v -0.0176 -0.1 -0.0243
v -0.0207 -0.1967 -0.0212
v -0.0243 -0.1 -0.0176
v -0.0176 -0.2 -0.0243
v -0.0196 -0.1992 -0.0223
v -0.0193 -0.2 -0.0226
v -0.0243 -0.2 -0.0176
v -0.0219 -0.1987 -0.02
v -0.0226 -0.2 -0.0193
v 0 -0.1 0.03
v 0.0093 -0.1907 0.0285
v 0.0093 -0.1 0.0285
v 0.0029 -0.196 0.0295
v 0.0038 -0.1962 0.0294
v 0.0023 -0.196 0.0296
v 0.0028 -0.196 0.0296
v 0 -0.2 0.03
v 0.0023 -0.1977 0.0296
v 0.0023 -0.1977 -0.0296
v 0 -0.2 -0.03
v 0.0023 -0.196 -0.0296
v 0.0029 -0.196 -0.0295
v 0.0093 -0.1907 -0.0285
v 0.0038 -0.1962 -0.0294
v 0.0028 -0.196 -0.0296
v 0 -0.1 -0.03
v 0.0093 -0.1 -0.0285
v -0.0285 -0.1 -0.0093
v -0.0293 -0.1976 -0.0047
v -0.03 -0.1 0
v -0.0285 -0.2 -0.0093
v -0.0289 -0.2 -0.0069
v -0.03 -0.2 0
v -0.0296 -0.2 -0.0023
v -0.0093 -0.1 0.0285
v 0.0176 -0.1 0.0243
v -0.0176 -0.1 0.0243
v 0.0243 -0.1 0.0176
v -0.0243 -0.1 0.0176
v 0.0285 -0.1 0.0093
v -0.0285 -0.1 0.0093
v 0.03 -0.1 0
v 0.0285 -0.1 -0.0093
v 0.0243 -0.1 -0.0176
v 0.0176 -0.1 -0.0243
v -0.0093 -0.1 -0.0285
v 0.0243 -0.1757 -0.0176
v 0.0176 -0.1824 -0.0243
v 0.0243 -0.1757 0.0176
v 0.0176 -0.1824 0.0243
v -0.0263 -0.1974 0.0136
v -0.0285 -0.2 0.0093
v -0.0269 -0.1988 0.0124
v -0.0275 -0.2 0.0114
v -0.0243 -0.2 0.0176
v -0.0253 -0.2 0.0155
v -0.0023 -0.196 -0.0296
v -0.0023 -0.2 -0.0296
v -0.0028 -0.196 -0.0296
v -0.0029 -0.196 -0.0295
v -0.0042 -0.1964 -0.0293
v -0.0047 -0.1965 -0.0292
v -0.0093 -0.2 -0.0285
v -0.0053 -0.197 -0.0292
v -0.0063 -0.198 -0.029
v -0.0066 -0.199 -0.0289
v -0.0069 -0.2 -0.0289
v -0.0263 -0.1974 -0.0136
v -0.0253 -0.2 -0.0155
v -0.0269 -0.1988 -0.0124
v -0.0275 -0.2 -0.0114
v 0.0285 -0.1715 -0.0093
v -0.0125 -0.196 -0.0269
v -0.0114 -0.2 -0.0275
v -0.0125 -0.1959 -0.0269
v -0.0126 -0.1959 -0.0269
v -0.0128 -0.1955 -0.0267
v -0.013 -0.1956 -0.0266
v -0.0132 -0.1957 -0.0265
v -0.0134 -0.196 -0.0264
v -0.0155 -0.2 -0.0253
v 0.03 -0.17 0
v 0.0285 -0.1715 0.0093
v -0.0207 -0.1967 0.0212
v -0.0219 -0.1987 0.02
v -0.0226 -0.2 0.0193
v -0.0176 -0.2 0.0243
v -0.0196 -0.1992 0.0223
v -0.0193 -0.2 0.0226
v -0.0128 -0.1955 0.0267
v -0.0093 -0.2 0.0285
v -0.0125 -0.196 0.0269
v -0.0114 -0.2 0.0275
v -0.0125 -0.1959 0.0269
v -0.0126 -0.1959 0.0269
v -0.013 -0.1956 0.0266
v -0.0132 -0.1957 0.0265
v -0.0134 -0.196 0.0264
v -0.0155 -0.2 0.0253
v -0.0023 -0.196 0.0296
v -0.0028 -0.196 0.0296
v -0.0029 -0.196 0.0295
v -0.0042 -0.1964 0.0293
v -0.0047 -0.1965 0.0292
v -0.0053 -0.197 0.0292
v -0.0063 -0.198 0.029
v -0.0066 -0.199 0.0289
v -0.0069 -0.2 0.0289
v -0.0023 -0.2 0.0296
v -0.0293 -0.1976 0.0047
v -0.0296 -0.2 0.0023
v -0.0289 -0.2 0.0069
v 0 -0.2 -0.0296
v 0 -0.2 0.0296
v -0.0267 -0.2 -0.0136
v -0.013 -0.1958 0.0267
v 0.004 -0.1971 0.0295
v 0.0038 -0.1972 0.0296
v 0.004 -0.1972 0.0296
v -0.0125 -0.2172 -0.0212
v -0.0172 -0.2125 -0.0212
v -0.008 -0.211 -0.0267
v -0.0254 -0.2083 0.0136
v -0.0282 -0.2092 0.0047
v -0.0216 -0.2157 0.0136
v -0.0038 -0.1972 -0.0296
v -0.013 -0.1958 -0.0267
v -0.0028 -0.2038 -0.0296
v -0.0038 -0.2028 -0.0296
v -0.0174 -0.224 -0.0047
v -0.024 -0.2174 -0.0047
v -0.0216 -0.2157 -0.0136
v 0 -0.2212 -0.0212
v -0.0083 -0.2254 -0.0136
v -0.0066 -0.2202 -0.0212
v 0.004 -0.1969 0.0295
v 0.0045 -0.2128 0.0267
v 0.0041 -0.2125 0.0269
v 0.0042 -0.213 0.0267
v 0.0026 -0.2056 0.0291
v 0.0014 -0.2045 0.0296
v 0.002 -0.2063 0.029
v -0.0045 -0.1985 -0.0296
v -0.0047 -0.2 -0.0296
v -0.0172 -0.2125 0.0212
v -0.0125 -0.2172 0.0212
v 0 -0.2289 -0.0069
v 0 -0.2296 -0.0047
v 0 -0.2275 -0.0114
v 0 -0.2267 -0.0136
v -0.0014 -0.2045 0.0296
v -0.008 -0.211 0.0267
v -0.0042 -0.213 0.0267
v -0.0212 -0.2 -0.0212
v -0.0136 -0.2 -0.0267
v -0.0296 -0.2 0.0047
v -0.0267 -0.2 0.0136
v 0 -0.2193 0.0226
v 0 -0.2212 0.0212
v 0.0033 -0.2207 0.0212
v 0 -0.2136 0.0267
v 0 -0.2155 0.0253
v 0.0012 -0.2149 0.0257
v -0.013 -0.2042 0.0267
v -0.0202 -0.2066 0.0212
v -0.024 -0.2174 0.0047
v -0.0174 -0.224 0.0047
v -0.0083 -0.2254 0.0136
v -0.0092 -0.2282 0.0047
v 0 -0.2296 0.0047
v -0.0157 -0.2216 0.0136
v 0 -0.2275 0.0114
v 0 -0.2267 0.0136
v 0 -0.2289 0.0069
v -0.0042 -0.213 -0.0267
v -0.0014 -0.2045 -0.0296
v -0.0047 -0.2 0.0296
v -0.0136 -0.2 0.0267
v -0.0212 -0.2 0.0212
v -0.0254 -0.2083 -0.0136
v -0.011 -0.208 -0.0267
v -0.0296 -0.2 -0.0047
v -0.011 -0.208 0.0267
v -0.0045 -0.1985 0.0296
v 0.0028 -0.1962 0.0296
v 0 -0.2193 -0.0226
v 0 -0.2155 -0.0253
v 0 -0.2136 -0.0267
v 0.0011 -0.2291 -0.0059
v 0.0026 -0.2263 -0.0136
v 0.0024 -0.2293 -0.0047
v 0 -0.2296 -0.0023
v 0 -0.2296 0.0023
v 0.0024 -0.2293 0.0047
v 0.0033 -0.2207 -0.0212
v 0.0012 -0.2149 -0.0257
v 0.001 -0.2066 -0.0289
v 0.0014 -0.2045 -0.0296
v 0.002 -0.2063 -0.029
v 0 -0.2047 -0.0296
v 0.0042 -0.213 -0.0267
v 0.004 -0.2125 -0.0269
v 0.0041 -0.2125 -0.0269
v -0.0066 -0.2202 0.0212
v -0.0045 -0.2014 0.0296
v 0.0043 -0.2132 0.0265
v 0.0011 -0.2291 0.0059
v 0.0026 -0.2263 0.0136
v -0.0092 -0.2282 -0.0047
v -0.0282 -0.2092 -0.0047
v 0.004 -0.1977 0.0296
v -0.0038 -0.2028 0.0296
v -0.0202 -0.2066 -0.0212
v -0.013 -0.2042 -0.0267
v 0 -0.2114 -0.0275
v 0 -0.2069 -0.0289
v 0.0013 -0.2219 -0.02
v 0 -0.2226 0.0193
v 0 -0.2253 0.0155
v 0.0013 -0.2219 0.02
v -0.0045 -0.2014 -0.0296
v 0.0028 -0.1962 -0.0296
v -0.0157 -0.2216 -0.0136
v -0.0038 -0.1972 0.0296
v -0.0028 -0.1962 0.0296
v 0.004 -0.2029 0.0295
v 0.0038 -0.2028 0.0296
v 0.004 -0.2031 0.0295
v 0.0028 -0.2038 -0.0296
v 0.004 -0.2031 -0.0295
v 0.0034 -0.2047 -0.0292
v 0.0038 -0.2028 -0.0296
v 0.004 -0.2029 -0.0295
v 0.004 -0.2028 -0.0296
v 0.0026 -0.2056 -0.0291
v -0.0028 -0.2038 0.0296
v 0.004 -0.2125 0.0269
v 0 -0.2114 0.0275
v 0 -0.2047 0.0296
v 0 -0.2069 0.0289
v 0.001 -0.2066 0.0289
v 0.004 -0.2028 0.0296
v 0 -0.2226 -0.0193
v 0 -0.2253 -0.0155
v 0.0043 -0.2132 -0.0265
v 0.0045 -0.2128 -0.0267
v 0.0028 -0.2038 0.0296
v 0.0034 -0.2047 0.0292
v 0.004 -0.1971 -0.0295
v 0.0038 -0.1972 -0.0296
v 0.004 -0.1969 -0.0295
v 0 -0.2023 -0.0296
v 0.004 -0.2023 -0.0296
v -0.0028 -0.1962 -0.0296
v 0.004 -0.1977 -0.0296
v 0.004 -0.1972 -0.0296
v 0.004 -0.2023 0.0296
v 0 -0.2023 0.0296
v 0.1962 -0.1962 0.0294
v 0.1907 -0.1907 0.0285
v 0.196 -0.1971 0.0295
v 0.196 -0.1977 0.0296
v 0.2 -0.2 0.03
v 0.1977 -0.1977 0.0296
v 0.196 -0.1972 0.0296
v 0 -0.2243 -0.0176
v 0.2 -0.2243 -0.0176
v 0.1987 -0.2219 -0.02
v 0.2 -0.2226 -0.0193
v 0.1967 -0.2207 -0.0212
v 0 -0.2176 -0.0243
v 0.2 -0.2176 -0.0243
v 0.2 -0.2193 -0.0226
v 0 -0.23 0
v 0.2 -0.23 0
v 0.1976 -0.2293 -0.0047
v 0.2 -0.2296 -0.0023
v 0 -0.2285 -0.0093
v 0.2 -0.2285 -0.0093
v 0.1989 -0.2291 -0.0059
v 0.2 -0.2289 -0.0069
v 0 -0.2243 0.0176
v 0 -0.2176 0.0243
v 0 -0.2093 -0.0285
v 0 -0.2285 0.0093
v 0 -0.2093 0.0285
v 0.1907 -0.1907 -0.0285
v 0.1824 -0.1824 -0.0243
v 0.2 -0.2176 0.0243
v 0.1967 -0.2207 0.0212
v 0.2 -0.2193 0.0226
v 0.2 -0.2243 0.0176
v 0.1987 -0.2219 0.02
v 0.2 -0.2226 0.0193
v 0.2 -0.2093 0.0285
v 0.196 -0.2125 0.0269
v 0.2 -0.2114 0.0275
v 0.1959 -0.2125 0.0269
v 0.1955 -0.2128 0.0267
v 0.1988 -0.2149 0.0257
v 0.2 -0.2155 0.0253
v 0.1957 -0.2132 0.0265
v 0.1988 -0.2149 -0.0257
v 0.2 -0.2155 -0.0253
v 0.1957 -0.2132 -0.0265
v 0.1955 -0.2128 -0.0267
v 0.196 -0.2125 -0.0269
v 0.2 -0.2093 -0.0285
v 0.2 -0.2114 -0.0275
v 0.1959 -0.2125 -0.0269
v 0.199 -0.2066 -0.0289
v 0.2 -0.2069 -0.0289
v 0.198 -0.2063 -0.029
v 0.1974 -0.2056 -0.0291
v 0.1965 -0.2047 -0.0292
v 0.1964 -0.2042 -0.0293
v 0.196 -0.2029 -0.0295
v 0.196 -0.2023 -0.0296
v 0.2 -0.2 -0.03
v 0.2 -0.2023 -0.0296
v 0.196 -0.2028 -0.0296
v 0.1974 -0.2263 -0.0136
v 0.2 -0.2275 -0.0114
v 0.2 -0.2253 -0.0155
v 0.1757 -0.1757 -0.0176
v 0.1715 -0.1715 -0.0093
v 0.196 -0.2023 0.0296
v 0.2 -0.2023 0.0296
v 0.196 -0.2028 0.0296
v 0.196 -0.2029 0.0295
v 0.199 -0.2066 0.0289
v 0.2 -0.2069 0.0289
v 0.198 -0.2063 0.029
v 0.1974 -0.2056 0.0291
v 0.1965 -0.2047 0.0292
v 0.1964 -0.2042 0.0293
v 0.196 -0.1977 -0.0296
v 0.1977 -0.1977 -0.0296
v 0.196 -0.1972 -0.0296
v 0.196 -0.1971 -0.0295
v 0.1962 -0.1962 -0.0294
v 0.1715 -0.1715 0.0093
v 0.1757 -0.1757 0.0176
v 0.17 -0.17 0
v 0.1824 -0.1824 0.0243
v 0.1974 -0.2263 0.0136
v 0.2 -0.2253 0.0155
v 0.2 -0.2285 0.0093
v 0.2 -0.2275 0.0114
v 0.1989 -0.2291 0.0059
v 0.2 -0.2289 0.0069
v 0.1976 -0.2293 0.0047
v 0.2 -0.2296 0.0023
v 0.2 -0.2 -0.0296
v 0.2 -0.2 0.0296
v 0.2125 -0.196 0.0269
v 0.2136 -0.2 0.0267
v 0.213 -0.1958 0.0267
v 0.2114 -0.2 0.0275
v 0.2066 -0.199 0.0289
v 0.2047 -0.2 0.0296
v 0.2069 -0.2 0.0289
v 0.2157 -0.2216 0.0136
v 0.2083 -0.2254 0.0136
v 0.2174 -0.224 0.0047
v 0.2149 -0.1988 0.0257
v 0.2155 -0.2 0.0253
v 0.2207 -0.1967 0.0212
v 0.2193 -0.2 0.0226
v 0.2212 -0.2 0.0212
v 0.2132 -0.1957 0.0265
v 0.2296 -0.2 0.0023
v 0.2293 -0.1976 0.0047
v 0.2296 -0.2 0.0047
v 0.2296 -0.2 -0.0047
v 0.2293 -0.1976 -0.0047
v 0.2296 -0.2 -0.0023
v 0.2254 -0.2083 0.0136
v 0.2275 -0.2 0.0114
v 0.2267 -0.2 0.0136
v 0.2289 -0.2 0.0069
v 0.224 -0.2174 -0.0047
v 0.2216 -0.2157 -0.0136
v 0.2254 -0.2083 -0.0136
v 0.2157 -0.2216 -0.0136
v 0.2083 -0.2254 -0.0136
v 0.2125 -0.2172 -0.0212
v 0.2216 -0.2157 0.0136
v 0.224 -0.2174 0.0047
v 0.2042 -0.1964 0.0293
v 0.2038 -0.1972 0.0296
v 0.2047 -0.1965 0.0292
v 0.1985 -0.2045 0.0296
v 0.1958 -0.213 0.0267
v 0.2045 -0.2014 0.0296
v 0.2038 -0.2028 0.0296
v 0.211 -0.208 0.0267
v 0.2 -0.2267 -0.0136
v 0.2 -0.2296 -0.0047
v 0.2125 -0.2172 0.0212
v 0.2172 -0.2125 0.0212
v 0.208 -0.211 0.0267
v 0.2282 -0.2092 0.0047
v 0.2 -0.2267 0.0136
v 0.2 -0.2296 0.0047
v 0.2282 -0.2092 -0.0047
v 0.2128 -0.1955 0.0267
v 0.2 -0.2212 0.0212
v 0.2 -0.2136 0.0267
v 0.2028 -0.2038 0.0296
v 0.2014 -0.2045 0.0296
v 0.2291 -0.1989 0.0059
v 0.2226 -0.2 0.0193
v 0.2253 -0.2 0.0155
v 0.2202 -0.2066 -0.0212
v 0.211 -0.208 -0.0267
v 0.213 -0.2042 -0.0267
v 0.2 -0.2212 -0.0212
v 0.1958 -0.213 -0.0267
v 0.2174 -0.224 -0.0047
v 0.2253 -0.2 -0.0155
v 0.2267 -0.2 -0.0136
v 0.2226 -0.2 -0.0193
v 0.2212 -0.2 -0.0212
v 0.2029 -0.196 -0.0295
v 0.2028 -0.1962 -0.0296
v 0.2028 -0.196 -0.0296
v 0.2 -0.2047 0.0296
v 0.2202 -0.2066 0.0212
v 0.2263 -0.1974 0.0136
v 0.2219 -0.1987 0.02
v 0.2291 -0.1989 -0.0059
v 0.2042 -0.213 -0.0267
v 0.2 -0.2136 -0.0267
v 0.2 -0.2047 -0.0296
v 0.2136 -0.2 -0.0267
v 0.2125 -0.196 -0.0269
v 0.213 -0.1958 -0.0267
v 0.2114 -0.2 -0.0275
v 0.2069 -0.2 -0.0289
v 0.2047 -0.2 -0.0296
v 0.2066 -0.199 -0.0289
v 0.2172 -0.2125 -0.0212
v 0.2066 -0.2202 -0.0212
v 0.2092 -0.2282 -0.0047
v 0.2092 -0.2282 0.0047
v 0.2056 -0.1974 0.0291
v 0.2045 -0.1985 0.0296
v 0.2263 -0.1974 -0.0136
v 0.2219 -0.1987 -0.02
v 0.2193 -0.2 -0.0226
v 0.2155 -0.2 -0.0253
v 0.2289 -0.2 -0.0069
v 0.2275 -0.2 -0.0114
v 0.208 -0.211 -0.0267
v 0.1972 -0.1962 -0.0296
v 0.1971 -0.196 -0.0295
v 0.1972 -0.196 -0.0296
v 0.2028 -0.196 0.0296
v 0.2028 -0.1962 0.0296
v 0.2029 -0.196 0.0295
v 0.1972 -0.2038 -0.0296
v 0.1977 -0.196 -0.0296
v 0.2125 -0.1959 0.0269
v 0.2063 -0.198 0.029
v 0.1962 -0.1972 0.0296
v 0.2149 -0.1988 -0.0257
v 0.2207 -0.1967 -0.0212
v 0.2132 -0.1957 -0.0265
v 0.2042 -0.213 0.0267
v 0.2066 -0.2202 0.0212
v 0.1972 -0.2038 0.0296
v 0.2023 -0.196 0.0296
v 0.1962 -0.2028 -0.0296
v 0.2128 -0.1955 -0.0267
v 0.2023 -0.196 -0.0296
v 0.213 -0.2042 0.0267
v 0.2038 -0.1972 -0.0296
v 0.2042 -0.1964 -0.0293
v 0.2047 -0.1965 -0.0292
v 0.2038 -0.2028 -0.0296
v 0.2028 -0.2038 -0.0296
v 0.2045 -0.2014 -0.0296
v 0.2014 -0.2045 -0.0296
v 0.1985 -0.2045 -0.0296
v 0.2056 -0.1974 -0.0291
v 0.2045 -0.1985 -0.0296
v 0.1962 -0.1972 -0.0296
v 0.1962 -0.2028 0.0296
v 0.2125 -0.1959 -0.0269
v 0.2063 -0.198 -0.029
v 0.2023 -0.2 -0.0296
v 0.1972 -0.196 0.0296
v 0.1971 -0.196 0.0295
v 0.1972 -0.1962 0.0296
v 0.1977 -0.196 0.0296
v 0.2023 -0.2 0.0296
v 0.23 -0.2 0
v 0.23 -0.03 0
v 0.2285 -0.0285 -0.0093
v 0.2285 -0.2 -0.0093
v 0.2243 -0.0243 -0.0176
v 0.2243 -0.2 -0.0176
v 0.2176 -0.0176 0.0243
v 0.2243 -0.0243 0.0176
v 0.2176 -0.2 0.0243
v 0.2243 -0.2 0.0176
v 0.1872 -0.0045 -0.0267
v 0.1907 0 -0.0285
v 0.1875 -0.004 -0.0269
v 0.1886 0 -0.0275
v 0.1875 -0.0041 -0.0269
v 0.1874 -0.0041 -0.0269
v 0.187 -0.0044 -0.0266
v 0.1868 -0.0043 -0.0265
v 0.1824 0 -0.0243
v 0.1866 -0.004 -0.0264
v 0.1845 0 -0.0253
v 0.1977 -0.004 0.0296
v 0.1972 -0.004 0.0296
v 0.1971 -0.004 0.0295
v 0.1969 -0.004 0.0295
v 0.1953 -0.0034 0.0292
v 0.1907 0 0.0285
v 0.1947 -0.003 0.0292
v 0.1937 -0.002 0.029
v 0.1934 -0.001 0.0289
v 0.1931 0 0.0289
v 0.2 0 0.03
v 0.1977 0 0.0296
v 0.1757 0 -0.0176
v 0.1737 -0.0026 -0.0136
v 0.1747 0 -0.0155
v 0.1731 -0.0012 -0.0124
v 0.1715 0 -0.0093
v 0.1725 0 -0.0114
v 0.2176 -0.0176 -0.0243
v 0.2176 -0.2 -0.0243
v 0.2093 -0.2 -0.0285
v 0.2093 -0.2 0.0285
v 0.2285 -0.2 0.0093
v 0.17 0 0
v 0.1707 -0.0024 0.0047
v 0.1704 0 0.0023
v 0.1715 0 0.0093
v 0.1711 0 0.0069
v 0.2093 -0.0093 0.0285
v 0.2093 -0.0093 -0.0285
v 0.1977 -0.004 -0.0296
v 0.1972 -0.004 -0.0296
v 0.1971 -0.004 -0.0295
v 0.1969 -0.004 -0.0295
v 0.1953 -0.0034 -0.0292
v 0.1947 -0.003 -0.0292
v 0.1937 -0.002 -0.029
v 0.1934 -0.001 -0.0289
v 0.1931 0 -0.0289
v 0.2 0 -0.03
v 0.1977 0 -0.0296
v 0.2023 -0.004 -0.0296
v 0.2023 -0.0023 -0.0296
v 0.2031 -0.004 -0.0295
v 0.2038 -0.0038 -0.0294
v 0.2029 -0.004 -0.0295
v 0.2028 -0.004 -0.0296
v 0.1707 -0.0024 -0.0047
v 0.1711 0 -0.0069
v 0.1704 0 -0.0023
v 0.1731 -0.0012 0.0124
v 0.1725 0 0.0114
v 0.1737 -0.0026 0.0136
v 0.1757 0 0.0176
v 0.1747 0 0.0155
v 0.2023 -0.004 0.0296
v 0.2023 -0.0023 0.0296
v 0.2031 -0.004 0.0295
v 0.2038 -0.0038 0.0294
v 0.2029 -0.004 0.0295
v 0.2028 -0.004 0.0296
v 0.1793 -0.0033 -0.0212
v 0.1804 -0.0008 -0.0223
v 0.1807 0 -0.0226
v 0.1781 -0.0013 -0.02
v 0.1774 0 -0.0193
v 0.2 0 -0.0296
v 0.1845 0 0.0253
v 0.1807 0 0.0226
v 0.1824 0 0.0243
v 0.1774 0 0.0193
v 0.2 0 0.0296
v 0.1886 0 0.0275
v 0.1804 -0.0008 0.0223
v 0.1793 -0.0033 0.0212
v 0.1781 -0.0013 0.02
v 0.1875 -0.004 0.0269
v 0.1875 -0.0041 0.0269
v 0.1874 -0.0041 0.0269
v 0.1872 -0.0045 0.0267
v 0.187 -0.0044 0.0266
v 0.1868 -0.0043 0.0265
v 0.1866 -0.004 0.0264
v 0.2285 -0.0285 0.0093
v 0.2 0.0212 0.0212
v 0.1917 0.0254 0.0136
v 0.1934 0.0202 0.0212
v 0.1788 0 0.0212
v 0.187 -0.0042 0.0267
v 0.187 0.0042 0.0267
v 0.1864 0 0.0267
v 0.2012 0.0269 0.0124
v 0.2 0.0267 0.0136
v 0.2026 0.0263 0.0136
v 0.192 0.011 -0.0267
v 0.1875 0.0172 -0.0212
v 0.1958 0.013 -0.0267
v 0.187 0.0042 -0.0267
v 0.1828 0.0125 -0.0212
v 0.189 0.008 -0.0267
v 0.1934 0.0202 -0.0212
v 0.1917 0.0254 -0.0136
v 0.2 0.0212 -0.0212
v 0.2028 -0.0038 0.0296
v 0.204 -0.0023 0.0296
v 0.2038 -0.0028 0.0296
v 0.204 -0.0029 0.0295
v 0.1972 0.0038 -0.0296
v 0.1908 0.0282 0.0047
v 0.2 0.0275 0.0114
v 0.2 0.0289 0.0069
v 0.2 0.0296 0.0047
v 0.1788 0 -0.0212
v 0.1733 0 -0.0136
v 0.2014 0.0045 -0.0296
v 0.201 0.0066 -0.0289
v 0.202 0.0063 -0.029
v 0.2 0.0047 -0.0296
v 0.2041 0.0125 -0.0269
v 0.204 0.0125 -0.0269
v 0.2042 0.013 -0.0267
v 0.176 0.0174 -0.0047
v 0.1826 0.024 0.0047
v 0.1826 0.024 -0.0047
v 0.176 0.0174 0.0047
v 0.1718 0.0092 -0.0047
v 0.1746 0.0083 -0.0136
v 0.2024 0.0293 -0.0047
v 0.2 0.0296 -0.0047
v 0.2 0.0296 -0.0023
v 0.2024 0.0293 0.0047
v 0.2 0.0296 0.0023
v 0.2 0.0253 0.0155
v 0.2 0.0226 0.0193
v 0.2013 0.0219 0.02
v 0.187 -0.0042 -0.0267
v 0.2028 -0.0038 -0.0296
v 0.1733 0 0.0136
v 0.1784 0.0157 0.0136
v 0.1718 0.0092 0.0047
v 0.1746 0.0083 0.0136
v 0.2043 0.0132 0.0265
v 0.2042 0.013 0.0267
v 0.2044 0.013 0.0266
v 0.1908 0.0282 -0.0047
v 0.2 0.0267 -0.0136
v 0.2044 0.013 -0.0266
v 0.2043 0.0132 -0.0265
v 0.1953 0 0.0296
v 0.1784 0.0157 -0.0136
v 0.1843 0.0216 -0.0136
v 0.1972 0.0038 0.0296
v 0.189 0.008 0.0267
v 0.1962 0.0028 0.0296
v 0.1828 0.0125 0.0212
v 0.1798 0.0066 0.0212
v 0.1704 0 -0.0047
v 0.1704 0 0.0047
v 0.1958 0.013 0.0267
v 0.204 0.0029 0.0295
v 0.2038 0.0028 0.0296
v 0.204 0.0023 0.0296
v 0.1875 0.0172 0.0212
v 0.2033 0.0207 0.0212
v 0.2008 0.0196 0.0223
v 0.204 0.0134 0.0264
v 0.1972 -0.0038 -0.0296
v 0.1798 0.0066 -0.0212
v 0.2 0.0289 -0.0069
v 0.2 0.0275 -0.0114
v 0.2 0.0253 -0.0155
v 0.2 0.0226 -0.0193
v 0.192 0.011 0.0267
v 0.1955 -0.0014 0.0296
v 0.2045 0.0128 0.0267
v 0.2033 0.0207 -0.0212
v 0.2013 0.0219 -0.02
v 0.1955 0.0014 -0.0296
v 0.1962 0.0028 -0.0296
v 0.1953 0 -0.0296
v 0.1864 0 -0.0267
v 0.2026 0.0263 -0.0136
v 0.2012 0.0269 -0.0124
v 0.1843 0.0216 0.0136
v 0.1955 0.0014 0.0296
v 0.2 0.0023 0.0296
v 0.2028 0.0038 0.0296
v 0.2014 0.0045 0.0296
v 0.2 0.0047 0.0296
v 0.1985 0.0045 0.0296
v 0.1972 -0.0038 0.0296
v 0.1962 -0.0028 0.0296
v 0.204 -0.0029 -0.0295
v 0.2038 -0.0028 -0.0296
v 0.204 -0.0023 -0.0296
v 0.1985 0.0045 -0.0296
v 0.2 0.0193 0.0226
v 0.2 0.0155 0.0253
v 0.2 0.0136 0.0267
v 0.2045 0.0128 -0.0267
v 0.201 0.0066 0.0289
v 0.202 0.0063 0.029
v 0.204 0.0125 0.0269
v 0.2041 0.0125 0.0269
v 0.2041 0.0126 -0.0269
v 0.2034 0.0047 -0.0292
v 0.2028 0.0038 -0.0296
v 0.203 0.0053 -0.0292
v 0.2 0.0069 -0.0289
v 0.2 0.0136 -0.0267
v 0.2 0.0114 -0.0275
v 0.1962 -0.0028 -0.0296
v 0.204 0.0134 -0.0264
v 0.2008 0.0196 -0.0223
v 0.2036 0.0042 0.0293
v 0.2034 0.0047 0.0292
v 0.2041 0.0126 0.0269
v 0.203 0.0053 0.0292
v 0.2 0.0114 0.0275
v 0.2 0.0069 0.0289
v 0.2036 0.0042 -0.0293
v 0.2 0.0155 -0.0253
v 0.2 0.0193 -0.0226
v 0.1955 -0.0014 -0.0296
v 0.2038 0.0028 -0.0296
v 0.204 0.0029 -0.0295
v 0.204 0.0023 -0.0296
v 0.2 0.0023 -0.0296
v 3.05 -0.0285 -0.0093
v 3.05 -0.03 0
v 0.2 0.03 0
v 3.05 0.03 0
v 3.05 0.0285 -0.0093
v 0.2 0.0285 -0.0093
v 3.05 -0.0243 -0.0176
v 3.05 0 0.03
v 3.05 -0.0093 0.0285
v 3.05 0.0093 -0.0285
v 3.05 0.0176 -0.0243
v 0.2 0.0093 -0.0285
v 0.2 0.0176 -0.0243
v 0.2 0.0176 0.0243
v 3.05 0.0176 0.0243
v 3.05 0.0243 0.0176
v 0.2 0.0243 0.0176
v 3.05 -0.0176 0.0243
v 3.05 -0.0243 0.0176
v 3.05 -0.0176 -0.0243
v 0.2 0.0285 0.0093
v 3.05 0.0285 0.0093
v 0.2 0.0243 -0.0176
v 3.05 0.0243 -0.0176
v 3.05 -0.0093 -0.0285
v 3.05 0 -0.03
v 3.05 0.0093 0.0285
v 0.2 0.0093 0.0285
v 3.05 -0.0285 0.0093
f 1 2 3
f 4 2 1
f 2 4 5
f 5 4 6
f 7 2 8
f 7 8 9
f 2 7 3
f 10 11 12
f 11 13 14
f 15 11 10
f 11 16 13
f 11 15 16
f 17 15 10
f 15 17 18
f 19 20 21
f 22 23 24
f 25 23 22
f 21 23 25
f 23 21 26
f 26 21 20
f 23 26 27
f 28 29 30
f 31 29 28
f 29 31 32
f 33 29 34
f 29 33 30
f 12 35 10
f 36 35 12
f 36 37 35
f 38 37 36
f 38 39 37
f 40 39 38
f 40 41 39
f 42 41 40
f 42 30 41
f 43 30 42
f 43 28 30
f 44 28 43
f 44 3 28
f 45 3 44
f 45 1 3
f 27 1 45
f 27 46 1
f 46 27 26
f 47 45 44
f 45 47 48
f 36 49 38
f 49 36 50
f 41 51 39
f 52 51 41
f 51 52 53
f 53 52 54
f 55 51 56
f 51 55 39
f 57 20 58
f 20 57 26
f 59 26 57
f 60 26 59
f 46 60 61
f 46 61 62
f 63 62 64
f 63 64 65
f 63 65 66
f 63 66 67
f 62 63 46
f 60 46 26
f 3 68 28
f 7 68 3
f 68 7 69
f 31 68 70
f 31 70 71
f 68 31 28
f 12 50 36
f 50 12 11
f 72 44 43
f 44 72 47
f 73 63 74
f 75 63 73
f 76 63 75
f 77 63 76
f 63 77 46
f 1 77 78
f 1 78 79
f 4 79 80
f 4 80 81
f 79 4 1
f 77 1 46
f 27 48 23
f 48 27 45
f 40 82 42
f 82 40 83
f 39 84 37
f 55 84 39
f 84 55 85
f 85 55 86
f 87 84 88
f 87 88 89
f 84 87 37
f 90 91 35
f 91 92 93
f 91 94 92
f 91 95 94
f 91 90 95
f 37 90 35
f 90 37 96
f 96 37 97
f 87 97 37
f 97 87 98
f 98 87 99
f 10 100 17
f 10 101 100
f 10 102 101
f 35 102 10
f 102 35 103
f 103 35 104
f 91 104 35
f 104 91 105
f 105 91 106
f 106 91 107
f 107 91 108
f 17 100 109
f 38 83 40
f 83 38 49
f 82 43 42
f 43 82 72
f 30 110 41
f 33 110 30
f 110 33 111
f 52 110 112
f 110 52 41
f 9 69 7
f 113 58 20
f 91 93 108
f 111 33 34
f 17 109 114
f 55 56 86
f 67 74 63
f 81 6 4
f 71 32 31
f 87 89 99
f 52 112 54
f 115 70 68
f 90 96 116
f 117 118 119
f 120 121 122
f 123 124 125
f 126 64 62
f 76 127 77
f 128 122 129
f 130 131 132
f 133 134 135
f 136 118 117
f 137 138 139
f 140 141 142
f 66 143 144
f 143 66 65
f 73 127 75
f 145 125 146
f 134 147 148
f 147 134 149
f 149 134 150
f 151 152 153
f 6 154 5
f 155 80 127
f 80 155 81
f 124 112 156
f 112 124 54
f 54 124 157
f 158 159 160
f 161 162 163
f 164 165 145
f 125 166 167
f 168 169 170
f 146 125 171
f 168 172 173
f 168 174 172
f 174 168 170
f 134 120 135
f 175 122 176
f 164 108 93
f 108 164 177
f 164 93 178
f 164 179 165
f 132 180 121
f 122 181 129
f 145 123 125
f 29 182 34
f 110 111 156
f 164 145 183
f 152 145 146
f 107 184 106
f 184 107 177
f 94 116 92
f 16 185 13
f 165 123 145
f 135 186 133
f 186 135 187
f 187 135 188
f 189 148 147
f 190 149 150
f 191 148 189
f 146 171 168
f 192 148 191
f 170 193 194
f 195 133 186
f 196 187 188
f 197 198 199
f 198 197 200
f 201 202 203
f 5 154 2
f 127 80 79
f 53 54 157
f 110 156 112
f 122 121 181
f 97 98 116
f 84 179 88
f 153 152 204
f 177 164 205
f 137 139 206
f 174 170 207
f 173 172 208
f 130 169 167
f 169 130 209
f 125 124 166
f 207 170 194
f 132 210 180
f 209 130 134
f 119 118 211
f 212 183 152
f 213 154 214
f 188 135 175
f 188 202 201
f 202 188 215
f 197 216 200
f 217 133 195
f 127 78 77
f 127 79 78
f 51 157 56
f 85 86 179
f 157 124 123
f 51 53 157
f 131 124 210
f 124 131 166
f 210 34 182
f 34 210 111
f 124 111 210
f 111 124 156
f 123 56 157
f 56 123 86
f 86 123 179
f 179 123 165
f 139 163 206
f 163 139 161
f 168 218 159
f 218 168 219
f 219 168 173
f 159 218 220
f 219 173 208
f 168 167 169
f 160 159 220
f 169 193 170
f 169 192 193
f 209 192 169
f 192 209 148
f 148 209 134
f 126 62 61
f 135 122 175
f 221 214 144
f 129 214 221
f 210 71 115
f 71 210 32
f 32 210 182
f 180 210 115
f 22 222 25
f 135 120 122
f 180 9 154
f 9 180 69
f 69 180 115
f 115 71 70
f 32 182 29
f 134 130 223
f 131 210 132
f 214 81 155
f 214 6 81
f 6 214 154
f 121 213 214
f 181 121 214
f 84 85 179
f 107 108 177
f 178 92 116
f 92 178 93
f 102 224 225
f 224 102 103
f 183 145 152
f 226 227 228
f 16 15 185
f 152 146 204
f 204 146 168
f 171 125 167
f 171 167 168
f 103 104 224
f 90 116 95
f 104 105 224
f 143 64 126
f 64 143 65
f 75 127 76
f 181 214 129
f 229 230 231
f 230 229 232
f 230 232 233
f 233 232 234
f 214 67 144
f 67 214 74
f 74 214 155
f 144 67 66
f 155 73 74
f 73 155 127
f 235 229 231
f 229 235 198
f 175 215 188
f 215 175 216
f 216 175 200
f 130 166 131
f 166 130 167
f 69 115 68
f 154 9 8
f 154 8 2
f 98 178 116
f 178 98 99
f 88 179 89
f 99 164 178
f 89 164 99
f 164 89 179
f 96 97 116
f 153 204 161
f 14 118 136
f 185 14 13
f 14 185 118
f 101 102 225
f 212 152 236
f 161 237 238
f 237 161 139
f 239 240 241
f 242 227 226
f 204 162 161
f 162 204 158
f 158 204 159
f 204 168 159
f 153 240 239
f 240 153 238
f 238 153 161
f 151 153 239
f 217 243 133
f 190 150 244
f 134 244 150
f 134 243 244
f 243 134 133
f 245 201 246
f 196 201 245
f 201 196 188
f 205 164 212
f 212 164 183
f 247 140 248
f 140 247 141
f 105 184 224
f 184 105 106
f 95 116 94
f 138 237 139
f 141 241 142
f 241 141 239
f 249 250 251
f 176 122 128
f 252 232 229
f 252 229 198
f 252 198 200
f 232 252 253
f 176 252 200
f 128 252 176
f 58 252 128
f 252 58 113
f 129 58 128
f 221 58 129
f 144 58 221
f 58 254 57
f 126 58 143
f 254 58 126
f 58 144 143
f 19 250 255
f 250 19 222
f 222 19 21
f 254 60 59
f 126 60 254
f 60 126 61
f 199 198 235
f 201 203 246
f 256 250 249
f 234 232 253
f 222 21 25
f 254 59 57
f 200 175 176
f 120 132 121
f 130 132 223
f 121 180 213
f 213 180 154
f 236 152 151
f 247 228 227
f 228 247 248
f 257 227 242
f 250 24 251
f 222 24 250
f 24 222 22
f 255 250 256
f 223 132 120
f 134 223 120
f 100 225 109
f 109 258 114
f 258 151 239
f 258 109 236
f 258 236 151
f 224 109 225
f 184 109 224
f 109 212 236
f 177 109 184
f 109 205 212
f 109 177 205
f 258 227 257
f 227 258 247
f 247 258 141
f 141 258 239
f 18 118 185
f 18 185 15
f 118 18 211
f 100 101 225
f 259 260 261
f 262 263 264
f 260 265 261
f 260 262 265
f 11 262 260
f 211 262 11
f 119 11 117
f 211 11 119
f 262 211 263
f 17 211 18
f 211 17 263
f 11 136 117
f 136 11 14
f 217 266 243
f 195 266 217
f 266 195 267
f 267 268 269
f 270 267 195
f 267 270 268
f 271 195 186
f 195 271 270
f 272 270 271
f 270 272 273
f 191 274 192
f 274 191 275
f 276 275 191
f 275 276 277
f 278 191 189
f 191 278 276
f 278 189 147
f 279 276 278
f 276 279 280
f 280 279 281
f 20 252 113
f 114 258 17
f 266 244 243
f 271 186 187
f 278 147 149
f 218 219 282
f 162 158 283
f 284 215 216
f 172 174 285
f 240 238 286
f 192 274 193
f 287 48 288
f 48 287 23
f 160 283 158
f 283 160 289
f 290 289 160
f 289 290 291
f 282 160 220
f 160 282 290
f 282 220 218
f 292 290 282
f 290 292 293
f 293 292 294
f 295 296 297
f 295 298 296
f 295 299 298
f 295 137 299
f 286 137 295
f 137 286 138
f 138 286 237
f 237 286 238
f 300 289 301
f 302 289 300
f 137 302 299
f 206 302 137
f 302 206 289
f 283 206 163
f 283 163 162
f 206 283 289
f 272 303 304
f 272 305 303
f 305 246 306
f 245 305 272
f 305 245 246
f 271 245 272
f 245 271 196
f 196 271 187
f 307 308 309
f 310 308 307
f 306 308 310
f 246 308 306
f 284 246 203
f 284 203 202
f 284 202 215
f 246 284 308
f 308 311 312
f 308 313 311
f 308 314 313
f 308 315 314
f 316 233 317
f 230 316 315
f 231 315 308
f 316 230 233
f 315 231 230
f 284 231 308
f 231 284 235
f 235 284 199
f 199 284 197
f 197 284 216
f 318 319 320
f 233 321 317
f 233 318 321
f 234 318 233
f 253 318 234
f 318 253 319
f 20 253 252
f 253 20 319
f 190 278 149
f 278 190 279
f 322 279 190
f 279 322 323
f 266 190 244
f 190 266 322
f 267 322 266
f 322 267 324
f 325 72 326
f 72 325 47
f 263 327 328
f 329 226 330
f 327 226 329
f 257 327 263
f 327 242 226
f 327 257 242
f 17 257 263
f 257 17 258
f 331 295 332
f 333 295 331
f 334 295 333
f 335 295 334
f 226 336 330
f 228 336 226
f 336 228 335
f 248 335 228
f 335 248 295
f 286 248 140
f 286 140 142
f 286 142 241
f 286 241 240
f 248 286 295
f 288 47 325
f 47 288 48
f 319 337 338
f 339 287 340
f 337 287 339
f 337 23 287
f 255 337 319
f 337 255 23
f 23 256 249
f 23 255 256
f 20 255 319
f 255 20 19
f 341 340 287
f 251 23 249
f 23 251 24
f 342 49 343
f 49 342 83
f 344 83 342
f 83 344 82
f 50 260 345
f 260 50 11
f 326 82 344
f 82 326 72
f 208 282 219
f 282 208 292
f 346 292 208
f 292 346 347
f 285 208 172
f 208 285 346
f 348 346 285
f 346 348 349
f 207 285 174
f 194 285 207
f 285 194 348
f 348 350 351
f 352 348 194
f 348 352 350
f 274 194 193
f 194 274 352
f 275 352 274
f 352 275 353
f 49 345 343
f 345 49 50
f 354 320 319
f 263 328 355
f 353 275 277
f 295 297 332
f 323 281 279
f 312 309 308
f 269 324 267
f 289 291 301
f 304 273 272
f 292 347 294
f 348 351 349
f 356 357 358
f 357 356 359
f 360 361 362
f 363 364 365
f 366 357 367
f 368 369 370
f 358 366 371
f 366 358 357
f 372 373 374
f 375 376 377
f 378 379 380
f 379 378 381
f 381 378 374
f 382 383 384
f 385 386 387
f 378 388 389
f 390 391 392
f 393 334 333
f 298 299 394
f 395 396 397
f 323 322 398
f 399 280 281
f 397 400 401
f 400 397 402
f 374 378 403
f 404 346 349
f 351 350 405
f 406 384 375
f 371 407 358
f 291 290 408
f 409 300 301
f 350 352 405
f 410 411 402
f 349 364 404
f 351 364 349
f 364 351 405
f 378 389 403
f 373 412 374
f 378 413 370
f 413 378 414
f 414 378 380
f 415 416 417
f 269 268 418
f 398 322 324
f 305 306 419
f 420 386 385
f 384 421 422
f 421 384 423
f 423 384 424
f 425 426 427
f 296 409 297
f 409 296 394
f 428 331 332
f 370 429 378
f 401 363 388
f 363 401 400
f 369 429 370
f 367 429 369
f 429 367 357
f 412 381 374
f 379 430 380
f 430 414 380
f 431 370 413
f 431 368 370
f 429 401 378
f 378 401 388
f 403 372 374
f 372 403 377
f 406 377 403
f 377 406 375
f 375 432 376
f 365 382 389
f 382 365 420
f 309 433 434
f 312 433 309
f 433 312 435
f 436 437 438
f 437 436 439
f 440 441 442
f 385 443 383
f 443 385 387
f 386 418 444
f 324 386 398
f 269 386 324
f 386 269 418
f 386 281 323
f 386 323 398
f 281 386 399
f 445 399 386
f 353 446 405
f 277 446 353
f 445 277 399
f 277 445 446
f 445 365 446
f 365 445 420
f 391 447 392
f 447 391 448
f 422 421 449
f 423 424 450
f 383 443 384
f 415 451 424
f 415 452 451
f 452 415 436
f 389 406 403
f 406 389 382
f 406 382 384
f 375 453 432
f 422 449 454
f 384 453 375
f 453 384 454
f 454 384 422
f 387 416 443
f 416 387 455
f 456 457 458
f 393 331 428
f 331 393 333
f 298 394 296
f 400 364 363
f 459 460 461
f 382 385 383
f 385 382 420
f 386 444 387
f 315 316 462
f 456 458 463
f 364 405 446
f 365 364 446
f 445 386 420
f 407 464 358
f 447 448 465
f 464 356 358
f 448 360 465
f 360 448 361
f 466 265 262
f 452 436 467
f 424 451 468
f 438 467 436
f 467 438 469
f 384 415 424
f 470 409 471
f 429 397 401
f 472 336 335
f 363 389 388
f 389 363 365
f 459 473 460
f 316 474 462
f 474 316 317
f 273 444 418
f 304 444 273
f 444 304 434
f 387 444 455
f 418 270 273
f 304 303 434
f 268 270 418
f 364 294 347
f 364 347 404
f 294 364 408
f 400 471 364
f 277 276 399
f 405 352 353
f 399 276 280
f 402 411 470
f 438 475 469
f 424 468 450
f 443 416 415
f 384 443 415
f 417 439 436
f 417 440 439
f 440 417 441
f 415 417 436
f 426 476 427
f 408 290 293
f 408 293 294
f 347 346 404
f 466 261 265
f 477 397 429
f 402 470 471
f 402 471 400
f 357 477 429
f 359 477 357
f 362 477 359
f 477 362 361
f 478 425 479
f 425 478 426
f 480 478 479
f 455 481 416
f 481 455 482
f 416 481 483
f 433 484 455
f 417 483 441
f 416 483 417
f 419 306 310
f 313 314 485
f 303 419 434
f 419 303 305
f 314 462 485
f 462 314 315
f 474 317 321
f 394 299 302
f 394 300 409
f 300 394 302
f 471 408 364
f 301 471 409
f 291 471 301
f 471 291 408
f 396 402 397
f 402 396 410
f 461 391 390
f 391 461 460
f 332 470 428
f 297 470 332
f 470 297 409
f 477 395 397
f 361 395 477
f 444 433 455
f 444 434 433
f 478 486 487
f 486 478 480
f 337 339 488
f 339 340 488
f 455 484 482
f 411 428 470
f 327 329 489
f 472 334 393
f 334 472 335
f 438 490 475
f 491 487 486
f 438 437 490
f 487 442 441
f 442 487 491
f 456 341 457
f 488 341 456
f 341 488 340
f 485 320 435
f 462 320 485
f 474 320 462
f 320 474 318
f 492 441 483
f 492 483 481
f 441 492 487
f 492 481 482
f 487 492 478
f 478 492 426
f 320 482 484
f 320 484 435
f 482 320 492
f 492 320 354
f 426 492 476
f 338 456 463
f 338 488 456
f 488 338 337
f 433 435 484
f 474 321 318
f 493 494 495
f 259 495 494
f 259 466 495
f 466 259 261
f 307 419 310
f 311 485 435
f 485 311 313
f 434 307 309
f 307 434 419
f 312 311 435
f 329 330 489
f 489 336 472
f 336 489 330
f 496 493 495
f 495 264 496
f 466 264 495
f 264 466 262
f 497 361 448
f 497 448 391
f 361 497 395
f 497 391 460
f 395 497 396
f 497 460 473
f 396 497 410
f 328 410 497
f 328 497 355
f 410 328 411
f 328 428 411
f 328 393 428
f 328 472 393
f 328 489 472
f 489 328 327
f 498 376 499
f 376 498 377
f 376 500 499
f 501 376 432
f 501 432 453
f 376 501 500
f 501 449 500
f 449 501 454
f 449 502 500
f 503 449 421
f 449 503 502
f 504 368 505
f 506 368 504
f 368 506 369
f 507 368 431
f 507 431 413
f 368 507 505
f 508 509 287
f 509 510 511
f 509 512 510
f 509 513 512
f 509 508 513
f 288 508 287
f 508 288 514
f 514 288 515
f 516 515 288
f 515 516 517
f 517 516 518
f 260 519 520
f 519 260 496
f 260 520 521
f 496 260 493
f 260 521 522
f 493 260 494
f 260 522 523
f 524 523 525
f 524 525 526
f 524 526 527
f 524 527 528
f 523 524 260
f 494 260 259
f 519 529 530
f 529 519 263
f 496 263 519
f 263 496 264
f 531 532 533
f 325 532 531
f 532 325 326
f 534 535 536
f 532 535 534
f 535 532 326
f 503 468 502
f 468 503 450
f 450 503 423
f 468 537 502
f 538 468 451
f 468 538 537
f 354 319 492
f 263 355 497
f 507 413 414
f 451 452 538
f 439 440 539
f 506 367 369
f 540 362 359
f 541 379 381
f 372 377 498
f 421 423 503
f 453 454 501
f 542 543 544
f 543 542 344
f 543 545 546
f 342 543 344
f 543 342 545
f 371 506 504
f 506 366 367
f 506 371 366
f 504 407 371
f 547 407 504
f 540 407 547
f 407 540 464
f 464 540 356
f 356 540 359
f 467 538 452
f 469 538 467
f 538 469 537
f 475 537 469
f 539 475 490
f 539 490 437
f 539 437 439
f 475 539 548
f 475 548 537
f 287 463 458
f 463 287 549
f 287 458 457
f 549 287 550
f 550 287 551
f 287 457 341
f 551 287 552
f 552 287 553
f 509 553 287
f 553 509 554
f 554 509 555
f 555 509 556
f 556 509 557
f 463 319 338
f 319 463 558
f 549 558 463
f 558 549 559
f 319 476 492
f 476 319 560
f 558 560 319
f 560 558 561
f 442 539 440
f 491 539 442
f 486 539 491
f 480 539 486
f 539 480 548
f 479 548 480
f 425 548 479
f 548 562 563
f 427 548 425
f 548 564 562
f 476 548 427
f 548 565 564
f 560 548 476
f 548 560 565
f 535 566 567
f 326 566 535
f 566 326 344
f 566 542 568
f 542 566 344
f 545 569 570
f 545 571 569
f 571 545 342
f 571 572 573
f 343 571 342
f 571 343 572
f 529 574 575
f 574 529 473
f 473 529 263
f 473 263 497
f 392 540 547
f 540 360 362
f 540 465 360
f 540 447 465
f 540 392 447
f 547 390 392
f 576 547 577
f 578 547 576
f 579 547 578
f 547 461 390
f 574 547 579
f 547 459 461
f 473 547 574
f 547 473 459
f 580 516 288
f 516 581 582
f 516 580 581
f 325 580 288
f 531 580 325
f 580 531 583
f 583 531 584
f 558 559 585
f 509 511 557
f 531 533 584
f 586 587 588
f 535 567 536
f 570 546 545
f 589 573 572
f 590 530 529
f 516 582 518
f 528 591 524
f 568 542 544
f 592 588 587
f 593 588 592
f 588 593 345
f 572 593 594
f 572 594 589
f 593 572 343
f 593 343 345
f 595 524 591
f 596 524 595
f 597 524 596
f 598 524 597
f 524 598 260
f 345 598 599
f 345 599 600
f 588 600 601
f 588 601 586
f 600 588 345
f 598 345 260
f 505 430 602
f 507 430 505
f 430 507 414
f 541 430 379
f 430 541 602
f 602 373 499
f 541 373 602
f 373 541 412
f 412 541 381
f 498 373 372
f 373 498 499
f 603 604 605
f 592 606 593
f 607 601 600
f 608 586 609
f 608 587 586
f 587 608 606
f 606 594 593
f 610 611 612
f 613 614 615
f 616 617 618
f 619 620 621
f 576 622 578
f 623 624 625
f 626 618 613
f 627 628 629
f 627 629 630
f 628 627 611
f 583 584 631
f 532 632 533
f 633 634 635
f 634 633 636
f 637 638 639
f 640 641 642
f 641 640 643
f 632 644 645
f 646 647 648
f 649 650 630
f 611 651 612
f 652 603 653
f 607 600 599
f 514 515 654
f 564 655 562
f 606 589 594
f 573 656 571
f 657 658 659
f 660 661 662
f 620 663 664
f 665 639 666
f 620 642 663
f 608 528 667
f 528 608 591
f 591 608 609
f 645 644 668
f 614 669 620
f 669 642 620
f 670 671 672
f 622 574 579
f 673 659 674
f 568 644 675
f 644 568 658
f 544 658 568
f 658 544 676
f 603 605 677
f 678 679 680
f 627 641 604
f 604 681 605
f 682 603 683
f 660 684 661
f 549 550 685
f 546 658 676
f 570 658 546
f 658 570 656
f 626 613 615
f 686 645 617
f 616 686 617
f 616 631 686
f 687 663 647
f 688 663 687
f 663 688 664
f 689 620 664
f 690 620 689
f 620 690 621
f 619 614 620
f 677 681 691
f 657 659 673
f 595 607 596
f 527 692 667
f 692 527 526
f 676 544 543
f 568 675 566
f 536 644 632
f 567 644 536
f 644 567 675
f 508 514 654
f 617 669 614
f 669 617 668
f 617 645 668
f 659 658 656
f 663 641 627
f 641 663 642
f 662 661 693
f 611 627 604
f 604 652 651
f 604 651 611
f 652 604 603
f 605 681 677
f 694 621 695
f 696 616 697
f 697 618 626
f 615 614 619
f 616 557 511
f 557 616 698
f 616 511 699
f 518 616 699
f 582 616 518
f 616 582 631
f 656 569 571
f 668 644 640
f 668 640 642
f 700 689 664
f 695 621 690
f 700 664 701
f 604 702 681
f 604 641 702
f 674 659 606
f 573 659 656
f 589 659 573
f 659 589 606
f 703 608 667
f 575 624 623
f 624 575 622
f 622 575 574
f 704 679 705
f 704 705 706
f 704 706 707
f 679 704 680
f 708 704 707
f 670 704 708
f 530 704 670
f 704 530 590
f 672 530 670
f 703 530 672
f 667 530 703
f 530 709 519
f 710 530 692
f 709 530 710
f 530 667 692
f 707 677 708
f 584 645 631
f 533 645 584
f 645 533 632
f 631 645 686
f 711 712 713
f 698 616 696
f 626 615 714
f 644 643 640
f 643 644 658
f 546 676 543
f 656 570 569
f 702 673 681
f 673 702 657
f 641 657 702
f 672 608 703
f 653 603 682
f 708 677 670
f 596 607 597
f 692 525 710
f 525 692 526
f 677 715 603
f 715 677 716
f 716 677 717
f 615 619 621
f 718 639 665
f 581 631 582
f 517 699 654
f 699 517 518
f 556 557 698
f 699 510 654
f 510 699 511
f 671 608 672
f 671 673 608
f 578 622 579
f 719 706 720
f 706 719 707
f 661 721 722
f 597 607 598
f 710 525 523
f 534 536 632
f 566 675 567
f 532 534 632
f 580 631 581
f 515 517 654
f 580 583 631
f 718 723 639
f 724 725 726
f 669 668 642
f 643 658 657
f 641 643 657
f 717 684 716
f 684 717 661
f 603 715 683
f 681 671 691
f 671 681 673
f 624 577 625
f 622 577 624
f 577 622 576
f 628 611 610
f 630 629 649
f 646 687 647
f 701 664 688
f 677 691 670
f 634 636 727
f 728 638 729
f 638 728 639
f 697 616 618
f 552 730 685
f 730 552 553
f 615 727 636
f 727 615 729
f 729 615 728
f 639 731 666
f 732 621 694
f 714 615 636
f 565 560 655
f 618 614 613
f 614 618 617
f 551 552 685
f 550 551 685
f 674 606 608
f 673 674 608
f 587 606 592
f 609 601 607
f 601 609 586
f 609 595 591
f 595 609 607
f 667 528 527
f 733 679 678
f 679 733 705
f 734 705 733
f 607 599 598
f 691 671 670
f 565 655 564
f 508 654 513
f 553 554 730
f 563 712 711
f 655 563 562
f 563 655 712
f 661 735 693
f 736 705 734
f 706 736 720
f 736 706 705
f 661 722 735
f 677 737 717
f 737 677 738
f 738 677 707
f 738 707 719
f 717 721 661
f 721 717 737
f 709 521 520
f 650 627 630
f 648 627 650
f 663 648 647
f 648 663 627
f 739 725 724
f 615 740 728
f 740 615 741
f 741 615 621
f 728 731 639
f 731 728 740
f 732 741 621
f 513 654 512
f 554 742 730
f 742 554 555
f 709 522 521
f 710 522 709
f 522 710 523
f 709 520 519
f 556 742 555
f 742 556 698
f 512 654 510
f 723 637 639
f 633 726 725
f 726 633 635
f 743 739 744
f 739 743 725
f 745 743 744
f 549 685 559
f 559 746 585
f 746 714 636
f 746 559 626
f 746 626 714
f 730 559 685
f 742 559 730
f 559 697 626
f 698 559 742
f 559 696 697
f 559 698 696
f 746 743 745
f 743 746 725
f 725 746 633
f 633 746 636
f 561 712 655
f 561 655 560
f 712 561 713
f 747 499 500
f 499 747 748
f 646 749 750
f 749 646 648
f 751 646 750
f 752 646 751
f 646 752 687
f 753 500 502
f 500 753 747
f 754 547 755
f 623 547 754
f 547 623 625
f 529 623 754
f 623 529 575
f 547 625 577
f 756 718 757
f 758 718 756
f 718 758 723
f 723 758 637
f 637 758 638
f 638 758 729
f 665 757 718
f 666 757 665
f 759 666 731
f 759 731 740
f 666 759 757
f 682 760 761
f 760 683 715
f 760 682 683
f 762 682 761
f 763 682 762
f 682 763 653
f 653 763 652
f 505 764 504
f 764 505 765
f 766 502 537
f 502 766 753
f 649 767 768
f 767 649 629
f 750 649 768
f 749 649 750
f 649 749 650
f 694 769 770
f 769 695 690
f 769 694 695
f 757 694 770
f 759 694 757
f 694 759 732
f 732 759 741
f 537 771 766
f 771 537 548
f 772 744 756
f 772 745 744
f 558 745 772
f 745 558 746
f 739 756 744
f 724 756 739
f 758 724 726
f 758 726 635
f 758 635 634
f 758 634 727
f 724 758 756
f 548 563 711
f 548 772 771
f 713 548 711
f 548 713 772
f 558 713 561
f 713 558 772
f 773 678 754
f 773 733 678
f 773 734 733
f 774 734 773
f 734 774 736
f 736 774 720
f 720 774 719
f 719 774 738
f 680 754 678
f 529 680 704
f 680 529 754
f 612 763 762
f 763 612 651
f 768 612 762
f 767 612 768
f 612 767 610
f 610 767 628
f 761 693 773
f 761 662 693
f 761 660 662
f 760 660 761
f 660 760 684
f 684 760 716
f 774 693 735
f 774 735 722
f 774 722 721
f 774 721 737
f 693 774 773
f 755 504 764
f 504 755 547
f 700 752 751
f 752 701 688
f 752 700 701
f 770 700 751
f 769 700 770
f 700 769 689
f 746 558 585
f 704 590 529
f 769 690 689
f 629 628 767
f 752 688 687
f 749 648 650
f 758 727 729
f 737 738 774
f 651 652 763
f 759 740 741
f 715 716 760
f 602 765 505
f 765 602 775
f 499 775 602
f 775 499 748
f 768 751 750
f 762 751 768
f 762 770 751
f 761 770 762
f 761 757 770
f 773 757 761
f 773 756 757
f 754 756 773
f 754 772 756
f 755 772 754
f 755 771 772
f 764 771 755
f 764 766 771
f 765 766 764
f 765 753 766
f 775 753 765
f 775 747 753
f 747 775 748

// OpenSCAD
module rod(a, b, r, n_facets) {
    dir = b-a;
    h   = norm(dir);
    if (dir[0] != 0 && dir[1] != 0)
    {
        w=b-a;
        cylinder(r=r, h=h, $fn=n_facets);
    } 
   if (dir[0] != 0 || dir[1] != 0) {
        w  = dir / h;
        u0 = cross(w, [0,0,1]);
        u  = u0 / norm(u0);
        v0 = cross(w, u);
        v  = v0 / norm(v0);
        multmatrix(m=[[u[0], v[0], w[0], a[0]],
                      [u[1], v[1], w[1], a[1]],
                      [u[2], v[2], w[2], a[2]],
                      [0,    0,    0,    1]])
        cylinder(r=r, h=h, $fn=n_facets);
    }
}

n_facets=20;
rod_r=0.03;
r=rod_r;
r_in=0.1;
d=0.2;
l=3.05;
a=[0,-r_in,0];
b=[0,-d,0];
c=[+d,-d,0];
D=[+d,0,0];
e=[+l,0,0];

union(){
    // union(){
        // union(){
            // union(){
                // union(){
                   // union(){
                        rod(a, b, r, n_facets);
                        translate(b) sphere(r=r,$fn=n_facets);
                   // }
                    rod(b, c, r, n_facets);
                // }
                translate(c) sphere(r=r,$fn=n_facets);
            // }
            rod(c, D, r, n_facets);
       //  }
        translate(D) sphere(r=r,$fn=n_facets);
   //  }
    rod(D, e, r, n_facets);
}
